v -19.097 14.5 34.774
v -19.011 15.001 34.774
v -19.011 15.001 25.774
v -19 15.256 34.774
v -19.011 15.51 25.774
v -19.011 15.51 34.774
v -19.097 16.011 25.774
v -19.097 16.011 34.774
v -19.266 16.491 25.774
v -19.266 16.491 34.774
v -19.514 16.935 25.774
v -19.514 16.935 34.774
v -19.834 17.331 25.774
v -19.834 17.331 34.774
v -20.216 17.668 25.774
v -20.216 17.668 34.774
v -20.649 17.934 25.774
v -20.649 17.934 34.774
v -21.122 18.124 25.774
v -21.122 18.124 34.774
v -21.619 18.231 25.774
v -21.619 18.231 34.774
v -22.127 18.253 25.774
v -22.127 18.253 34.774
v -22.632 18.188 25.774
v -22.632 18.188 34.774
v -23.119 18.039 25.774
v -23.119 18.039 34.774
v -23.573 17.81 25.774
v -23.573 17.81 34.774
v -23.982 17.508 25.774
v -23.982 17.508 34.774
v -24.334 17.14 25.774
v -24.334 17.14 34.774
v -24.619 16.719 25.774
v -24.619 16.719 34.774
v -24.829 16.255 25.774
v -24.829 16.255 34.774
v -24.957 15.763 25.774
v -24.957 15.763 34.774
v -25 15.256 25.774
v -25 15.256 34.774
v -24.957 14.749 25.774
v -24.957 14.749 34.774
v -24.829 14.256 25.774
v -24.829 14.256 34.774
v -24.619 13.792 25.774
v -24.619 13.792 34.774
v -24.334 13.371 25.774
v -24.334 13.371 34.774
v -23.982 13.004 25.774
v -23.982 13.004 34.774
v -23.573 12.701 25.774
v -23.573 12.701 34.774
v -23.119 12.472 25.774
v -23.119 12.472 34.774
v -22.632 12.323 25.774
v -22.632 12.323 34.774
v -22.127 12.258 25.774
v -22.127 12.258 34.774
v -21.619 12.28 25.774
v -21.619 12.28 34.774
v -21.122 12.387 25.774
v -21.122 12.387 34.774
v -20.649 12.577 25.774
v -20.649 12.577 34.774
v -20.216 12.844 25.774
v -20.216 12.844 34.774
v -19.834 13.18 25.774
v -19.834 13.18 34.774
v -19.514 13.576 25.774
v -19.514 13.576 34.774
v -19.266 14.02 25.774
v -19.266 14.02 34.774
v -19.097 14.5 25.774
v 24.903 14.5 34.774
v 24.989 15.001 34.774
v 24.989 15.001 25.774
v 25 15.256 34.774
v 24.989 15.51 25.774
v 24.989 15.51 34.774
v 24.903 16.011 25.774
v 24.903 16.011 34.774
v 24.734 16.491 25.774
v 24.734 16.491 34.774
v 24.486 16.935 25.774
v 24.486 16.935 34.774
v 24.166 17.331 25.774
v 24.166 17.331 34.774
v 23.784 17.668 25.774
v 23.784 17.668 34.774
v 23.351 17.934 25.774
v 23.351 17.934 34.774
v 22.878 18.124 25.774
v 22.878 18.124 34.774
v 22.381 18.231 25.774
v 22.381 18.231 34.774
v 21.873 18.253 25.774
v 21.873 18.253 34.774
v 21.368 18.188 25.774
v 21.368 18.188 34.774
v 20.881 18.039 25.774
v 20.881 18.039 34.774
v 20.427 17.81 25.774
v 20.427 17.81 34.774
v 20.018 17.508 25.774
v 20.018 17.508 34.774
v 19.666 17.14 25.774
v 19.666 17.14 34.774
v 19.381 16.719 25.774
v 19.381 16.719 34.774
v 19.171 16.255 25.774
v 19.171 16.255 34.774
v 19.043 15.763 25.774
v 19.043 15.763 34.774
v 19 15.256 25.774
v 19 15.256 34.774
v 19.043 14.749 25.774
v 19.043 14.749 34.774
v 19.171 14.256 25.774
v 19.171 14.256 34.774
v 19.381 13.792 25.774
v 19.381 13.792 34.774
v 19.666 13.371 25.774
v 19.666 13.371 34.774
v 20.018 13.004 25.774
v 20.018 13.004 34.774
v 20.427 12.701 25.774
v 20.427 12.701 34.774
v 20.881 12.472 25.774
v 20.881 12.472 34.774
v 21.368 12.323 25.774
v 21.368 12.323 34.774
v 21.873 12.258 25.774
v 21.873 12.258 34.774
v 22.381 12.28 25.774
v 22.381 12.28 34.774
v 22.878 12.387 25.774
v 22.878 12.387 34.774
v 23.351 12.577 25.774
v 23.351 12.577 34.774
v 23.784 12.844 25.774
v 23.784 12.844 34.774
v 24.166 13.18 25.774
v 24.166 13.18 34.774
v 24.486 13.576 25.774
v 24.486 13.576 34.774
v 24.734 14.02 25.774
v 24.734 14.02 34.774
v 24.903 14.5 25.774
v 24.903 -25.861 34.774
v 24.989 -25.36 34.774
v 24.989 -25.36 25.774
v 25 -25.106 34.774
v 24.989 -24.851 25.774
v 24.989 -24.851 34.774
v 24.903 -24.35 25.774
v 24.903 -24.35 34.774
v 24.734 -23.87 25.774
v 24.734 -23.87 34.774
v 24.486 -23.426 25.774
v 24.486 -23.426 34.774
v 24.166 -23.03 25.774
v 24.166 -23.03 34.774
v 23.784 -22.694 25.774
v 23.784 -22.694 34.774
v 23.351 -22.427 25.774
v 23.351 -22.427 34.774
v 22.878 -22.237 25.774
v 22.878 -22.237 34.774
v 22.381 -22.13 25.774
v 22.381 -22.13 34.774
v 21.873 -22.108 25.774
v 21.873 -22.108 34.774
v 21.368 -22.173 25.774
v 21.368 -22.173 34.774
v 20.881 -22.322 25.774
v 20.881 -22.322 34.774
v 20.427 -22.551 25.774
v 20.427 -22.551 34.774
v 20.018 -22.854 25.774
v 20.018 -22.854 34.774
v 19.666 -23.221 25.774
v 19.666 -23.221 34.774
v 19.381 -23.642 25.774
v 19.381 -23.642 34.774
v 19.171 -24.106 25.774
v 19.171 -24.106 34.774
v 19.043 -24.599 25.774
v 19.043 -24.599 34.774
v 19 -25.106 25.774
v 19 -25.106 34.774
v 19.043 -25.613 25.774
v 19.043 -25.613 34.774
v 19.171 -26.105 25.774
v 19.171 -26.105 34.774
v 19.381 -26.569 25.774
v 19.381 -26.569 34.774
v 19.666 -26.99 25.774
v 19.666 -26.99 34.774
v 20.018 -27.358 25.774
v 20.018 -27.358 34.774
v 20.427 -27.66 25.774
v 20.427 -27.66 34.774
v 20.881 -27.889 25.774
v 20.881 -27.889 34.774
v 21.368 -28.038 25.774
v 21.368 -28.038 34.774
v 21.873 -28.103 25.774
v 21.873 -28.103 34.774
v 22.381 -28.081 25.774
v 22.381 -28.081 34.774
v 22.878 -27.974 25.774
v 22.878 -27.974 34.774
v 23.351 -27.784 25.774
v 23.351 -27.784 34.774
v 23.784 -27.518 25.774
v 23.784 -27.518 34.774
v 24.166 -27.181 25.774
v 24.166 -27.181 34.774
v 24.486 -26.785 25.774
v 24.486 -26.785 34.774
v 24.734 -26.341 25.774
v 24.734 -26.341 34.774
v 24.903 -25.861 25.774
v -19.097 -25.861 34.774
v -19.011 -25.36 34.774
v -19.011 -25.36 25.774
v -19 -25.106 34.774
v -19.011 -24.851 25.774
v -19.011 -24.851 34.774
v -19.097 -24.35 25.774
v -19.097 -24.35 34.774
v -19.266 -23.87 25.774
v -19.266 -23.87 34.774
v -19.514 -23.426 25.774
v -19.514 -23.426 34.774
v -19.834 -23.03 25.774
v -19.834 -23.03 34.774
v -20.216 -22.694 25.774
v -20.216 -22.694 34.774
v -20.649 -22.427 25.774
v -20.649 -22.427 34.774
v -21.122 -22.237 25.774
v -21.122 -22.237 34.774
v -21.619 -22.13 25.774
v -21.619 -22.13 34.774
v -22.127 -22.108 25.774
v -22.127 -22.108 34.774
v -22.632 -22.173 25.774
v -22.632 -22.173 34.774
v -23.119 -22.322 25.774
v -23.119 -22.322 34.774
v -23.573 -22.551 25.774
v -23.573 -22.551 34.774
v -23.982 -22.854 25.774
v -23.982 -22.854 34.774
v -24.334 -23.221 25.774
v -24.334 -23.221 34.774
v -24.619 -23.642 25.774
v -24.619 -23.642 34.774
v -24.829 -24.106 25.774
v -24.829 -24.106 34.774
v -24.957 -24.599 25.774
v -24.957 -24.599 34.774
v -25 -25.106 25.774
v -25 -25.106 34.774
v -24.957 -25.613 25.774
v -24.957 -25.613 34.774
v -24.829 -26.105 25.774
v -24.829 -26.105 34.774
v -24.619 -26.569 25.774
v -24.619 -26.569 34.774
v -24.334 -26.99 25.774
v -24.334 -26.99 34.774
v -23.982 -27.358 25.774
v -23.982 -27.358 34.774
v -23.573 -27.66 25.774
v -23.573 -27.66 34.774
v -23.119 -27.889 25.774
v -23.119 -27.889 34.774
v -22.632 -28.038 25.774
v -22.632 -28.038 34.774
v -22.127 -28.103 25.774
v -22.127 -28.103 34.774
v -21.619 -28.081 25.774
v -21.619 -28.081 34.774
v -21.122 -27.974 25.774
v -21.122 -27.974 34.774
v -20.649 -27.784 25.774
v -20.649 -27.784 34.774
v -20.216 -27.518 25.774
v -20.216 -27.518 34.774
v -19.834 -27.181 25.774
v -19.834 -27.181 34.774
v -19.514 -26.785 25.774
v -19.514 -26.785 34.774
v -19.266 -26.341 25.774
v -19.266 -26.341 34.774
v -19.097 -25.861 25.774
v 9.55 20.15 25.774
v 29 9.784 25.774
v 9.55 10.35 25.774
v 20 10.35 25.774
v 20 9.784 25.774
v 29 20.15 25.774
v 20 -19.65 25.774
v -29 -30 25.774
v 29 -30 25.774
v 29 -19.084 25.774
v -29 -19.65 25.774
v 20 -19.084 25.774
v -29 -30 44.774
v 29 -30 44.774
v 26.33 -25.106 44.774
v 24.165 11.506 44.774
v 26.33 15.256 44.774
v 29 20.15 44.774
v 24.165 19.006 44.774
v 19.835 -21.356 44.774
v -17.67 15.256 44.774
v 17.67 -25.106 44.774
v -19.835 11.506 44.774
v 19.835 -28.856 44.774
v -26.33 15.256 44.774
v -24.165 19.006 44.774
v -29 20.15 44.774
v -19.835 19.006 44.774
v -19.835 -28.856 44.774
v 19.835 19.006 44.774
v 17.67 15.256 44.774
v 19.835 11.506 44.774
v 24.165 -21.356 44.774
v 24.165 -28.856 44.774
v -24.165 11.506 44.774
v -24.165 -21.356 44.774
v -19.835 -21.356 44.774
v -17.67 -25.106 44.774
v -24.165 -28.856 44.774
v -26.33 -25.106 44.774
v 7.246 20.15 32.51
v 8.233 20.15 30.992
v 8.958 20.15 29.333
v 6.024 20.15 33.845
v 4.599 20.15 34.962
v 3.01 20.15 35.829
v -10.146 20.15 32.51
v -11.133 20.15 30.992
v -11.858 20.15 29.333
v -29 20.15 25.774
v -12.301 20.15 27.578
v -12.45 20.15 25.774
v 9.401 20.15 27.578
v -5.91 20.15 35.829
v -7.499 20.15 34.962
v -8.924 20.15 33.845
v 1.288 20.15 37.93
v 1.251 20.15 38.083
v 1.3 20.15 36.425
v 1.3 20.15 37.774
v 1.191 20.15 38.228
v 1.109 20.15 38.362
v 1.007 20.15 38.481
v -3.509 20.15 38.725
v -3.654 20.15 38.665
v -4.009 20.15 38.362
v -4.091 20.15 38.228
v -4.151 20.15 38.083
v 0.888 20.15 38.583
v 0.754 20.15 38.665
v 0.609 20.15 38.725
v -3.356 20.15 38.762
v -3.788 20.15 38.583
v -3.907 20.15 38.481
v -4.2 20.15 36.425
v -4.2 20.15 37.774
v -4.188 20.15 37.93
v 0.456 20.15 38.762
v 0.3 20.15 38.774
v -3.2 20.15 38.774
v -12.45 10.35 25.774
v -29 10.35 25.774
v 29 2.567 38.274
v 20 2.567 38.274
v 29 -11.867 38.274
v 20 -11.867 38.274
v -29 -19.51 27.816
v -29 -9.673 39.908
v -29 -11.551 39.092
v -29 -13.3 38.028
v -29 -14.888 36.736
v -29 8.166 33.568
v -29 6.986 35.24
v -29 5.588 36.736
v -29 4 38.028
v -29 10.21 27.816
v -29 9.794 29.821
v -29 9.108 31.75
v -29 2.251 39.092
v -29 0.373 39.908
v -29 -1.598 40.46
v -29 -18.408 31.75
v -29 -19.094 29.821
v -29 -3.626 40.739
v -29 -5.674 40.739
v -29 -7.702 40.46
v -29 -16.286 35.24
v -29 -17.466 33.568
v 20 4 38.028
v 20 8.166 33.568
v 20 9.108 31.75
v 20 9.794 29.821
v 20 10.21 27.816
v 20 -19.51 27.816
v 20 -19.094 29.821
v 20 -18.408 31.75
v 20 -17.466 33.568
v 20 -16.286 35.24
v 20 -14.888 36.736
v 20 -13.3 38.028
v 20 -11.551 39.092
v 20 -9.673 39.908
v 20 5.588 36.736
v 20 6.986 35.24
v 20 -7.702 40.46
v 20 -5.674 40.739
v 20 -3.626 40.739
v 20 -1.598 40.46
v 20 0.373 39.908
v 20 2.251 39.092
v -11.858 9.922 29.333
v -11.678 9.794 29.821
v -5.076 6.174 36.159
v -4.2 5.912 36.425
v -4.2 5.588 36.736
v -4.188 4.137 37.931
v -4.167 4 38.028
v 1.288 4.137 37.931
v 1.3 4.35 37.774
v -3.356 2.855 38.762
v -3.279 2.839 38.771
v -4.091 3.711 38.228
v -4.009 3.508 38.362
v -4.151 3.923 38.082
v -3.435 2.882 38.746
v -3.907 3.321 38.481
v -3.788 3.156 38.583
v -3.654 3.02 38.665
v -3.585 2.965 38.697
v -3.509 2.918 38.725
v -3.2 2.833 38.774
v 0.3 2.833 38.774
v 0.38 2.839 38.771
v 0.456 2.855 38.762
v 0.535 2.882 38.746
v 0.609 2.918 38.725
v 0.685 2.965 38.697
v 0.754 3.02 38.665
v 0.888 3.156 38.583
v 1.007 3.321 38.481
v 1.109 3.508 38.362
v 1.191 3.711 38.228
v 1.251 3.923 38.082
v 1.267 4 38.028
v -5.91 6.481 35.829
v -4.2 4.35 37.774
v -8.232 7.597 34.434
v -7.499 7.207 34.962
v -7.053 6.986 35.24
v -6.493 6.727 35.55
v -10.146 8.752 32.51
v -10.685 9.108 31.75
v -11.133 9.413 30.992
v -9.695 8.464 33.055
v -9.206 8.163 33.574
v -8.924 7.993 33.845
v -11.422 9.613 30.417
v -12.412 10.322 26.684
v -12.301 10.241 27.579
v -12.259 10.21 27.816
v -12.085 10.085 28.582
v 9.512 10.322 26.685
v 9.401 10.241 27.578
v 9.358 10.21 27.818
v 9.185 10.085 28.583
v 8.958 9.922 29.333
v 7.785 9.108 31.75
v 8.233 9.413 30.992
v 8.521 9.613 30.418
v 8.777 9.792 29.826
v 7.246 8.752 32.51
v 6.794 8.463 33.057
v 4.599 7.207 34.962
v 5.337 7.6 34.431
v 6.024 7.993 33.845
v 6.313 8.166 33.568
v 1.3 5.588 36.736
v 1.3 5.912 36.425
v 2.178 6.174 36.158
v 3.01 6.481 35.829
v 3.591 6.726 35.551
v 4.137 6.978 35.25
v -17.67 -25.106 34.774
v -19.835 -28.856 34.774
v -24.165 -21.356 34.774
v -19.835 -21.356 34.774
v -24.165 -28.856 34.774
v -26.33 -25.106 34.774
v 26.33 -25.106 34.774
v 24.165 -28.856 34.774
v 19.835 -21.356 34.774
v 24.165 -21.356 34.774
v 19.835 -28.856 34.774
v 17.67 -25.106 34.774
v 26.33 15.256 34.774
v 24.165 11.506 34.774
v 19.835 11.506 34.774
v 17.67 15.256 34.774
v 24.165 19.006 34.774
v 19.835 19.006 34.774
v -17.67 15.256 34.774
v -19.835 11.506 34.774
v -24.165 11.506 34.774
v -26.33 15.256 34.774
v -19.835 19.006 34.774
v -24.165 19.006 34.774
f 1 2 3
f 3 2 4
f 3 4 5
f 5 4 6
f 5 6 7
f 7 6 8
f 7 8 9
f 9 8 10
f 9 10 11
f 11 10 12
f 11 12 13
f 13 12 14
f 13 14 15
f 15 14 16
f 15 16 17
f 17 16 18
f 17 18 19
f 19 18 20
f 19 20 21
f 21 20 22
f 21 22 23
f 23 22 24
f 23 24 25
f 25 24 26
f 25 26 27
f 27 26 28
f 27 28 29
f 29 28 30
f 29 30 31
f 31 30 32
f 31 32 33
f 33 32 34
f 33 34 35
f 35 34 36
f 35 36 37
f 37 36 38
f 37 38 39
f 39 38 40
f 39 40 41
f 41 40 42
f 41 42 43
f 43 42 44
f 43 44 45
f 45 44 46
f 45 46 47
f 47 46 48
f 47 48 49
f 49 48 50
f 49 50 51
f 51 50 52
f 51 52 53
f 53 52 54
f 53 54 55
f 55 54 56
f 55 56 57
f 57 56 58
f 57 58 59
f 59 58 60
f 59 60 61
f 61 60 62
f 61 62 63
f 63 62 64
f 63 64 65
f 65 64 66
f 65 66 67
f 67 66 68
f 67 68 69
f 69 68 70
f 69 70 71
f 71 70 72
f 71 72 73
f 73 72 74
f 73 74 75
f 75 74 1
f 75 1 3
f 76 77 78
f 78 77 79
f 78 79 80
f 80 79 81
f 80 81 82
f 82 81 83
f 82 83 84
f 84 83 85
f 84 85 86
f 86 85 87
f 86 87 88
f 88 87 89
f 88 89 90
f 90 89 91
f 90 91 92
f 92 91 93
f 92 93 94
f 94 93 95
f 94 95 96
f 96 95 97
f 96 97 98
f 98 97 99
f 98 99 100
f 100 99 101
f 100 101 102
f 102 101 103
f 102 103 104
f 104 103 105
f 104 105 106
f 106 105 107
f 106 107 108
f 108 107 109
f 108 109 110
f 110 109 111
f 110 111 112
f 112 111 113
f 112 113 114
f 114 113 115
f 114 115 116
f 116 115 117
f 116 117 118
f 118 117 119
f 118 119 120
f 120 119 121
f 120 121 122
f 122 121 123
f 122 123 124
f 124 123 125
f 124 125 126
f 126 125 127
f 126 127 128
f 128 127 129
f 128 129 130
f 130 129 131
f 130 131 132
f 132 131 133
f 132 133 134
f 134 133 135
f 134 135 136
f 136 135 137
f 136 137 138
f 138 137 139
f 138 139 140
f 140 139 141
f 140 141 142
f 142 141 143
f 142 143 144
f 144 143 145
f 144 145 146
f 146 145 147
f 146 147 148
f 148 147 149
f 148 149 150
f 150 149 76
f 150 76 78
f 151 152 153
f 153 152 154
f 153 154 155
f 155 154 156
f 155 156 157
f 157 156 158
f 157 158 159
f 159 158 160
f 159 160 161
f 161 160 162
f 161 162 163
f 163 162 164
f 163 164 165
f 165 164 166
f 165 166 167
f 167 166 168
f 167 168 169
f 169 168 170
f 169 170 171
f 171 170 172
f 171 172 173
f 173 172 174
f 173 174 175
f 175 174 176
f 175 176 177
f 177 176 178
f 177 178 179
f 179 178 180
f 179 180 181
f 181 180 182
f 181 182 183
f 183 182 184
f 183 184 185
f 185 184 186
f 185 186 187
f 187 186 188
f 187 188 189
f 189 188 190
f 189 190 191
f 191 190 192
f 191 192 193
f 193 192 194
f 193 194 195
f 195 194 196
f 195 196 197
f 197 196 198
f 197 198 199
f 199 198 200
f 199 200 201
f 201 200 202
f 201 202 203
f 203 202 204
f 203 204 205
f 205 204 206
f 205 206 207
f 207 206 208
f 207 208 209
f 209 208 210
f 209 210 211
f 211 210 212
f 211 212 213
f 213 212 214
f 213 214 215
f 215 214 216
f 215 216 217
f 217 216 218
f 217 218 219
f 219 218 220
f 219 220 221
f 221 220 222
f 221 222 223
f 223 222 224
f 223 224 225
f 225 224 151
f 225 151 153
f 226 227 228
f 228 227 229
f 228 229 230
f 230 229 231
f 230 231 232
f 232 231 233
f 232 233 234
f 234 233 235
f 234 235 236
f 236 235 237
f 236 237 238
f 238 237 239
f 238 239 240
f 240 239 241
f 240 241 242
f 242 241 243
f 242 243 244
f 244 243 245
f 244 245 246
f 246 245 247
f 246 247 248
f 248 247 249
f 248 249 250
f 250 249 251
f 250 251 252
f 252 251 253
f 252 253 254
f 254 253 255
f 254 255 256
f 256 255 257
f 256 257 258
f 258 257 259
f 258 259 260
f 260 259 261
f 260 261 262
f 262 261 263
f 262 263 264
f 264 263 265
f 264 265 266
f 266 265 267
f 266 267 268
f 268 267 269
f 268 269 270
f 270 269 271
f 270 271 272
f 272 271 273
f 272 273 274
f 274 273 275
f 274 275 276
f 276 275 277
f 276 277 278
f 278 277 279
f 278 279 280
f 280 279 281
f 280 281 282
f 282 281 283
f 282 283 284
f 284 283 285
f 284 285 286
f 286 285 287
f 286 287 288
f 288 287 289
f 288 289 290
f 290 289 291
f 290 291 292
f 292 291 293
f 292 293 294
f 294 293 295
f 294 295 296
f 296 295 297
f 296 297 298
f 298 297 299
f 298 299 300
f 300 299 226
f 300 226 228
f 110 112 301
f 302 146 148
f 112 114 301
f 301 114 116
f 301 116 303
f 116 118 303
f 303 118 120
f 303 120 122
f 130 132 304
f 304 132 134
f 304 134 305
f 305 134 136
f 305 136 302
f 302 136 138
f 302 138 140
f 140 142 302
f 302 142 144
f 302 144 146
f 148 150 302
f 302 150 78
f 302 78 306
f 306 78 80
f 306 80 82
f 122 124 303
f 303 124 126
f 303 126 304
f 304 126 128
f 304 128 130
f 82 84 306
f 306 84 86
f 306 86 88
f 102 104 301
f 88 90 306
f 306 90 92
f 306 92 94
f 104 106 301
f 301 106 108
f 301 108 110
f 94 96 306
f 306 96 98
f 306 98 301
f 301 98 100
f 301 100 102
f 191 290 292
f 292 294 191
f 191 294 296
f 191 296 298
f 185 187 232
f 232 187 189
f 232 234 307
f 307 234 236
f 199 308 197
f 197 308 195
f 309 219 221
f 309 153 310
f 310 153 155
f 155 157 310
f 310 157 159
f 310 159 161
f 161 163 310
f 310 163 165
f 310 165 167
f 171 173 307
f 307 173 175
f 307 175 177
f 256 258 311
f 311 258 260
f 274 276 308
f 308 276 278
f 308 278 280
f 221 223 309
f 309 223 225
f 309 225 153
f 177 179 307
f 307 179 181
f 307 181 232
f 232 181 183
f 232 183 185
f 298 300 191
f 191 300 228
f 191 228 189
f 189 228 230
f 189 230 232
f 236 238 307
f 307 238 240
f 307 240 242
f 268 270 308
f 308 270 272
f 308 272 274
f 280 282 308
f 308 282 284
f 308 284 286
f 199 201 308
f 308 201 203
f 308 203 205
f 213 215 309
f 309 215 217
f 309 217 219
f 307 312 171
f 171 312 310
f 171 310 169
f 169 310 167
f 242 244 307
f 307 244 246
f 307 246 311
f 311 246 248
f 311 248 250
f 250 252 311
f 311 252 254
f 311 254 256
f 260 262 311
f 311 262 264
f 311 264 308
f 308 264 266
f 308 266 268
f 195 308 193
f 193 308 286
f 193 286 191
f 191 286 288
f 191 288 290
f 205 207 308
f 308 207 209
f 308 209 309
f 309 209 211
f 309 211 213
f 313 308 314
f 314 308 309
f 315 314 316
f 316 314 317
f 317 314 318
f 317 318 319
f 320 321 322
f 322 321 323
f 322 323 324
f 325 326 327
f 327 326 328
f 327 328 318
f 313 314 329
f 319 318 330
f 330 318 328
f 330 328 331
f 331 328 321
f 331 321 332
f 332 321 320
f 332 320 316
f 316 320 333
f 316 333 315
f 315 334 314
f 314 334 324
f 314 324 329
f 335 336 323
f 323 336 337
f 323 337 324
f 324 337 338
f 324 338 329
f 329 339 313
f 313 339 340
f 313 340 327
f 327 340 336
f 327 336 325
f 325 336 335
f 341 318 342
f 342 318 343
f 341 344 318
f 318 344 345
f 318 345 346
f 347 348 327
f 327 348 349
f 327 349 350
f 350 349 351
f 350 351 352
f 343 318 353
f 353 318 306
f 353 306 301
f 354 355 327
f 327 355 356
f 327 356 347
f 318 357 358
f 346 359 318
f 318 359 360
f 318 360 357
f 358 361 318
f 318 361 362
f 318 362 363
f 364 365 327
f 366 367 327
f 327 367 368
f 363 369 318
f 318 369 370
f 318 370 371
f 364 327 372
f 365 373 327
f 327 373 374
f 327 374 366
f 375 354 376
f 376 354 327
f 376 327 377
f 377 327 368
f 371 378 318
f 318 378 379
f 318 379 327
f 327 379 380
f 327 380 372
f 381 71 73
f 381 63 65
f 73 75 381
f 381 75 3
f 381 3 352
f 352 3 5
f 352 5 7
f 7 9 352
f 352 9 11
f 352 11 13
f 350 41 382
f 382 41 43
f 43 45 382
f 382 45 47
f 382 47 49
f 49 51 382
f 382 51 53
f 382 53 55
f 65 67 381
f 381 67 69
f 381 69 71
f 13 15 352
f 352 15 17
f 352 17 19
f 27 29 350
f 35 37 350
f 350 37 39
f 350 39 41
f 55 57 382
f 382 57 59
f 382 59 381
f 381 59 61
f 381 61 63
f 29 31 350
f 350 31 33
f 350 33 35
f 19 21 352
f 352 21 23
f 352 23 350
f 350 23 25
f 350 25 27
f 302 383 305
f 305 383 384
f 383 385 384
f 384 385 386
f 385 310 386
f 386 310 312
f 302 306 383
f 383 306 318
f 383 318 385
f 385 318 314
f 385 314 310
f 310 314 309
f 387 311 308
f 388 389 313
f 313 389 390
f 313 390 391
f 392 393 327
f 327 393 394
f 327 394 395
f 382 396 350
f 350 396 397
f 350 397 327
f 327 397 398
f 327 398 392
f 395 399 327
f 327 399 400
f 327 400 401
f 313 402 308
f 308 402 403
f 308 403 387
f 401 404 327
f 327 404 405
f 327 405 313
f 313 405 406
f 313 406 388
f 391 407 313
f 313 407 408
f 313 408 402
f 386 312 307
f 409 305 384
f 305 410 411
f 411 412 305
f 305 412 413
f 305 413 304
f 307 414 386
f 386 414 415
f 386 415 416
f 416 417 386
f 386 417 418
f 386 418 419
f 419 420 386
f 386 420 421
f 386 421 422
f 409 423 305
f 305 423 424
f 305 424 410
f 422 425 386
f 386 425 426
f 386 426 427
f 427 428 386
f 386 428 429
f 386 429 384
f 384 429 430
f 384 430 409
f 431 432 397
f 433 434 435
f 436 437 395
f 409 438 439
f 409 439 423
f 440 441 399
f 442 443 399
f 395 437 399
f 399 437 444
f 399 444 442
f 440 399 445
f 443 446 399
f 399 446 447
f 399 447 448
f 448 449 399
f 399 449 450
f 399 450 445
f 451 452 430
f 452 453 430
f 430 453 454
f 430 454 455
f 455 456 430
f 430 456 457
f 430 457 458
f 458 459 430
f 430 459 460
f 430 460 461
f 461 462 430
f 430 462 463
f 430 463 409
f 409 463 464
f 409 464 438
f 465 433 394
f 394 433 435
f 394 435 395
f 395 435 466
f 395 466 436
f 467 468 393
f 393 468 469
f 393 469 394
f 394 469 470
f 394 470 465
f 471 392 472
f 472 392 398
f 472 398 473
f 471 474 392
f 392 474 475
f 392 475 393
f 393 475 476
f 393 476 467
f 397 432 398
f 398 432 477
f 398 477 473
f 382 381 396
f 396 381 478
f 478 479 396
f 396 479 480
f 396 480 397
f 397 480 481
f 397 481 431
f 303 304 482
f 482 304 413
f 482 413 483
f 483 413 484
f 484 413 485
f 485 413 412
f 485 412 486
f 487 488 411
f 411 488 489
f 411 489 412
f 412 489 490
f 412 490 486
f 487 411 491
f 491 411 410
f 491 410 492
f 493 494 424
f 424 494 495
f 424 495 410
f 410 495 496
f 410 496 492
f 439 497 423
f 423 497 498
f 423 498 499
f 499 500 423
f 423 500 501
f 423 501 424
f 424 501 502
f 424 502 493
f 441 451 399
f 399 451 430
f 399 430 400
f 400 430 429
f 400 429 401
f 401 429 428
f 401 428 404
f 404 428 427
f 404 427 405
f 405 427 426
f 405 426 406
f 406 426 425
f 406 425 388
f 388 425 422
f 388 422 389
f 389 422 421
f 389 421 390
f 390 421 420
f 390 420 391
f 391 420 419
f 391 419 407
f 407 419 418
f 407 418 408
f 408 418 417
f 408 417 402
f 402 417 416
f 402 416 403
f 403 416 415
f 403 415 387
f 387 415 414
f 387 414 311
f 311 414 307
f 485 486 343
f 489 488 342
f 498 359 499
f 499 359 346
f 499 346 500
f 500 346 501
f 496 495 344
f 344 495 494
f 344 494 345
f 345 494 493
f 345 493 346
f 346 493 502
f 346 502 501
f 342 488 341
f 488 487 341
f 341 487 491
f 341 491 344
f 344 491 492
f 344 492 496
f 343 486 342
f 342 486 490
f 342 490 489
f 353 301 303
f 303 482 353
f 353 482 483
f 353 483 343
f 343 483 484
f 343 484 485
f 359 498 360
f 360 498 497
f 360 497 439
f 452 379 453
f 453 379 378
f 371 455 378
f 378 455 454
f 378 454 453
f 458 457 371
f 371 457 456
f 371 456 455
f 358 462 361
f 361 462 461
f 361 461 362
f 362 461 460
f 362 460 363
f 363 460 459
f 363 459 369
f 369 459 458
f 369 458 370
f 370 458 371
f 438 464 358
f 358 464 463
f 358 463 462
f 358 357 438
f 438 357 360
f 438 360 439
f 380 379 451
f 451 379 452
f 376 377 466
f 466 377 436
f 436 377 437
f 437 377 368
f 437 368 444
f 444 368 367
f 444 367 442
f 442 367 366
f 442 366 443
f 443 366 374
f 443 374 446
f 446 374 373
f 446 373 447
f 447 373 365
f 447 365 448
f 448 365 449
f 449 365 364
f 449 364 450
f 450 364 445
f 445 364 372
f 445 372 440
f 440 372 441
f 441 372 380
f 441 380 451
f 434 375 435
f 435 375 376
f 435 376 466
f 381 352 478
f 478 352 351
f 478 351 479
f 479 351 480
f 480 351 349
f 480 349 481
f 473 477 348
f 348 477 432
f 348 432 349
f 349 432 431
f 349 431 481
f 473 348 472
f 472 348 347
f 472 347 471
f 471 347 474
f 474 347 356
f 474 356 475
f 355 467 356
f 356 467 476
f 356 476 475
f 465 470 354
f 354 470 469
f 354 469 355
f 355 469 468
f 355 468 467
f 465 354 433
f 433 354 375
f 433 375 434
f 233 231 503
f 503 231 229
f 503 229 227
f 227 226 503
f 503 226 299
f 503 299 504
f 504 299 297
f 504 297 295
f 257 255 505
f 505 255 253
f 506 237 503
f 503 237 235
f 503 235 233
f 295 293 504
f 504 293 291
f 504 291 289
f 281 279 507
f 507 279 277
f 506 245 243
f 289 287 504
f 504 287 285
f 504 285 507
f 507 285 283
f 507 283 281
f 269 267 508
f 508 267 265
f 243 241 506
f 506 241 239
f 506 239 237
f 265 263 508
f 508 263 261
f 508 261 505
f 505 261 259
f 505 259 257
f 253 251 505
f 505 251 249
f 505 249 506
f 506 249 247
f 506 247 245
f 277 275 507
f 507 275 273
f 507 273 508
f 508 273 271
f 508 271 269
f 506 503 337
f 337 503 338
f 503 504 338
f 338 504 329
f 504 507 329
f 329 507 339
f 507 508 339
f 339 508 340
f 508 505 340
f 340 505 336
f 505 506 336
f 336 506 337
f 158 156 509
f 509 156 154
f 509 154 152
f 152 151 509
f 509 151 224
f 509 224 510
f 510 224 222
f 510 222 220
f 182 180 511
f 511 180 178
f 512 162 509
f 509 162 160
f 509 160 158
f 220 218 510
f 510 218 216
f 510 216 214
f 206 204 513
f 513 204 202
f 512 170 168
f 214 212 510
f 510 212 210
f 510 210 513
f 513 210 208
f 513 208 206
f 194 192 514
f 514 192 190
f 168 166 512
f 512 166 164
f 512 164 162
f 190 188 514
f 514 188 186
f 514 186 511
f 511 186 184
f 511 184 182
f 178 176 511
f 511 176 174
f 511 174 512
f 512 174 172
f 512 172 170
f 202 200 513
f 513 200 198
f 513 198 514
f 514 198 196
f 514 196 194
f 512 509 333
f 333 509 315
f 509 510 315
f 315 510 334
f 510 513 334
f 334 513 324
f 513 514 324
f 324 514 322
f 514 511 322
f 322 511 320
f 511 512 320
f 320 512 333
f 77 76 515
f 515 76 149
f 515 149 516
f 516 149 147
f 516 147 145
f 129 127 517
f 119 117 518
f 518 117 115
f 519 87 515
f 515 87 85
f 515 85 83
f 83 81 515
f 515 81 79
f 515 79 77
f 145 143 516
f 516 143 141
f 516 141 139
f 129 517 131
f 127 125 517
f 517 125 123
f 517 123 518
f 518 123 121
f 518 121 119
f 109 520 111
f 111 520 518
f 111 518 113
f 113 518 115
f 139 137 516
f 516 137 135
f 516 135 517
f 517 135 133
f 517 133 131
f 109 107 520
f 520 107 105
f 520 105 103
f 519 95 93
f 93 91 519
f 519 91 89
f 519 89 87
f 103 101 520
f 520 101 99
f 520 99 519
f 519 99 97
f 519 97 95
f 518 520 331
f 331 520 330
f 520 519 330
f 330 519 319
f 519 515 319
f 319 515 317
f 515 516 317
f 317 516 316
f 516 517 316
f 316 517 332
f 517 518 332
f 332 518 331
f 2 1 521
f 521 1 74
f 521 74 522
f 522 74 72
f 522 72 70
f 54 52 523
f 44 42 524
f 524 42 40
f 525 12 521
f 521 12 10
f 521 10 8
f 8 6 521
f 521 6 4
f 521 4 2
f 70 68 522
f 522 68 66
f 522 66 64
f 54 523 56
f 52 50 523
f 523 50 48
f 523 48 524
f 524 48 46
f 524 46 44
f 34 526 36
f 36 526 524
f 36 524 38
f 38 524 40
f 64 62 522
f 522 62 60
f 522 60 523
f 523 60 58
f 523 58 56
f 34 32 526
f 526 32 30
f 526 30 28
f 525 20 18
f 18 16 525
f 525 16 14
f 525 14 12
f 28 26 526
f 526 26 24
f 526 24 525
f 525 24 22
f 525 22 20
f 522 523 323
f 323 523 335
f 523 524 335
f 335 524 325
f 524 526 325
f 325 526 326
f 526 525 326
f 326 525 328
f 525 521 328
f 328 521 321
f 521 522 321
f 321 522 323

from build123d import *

# Parameters (mm, degrees)
BOSS_EXTRUDE1_DEPTH      = 29
BOSS_EXTRUDE1_DEPTH_BACK = 29
CUT_EXTRUDE1_DEPTH       = 20
CUT_EXTRUDE1_DEPTH_BACK  = 62.202085825
SKETCH2_R                = 15
CUT_EXTRUDE2_DEPTH       = 18
SKETCH4_R                = 3
CUT_EXTRUDE3_DEPTH       = 46.847573609
CUT_EXTRUDE4_DEPTH       = 10


with BuildPart() as part:
    # Sketch1 → Boss-Extrude1 (new, two sides: drawn at the far end of the back side and taken through both)
    with BuildSketch(Plane(origin=(0, 0, 0), x_dir=(0, 0, -1), z_dir=(1, 0, 0)).offset(-BOSS_EXTRUDE1_DEPTH_BACK)):
        Polygon((-44.77382393, -30), (-25.77382393, -30), (-25.77382393, -19.08375673), (-38.27382393, -11.866878365), (-38.27382393, 2.566878365), (-25.77382393, 9.78375673), (-25.77382393, 20.15), (-44.77382393, 20.15), align=None)
    extrude(amount=BOSS_EXTRUDE1_DEPTH + BOSS_EXTRUDE1_DEPTH_BACK)

    # Sketch2 → Cut-Extrude1 (cut, two sides: drawn at the far end of the back side and taken through both)
    with BuildSketch(Plane(origin=(0, 0, 0), x_dir=(0, 0, -1), z_dir=(1, 0, 0)).offset(-CUT_EXTRUDE1_DEPTH_BACK)):
        with Locations((-25.77382393, -4.65)):
            Circle(SKETCH2_R)
    extrude(amount=CUT_EXTRUDE1_DEPTH + CUT_EXTRUDE1_DEPTH_BACK, mode=Mode.SUBTRACT)

    # Sketch3 → Cut-Extrude2 (cut)
    with BuildSketch(Plane(origin=(0, 20.15, 0), x_dir=(1, 0, 0), z_dir=(0, 1, 0))):
        with BuildLine():
            Line((9.55, -25.77382393), (1.3, -25.77382393))
            Line((1.3, -25.77382393), (1.3, -36.424528133))
            ThreePointArc((1.3, -36.424528133), (7.246263565, -32.509920723), (9.55, -25.77382393))
        make_face()
        with BuildLine():
            Line((1.3, -36.424528133), (1.3, -25.77382393))
            Line((1.3, -25.77382393), (-4.2, -25.77382393))
            Line((-4.2, -25.77382393), (-4.2, -36.424528133))
            ThreePointArc((-4.2, -36.424528133), (-1.45, -36.77382393), (1.3, -36.424528133))
        make_face()
        with BuildLine():
            Line((-4.2, -36.424528133), (-4.2, -25.77382393))
            Line((-4.2, -25.77382393), (-12.45, -25.77382393))
            ThreePointArc((-12.45, -25.77382393), (-10.146263565, -32.509920723), (-4.2, -36.424528133))
        make_face()
        with BuildLine():
            Line((1.3, -37.77382393), (1.3, -36.424528133))
            ThreePointArc((1.3, -36.424528133), (-1.45, -36.77382393), (-4.2, -36.424528133))
            Line((-4.2, -36.424528133), (-4.2, -37.77382393))
            ThreePointArc((-4.2, -37.77382393), (-3.907106781, -38.480930712), (-3.2, -38.77382393))
            Line((-3.2, -38.77382393), (0.3, -38.77382393))
            ThreePointArc((0.3, -38.77382393), (1.007106781, -38.480930712), (1.3, -37.77382393))
        make_face()
    extrude(amount=-CUT_EXTRUDE2_DEPTH, mode=Mode.SUBTRACT)

    # Sketch4 → Cut-Extrude3 (cut, through all)
    with BuildSketch(Plane(origin=(0, 0, 25.77382393), x_dir=(-1, 0, 0), z_dir=(0, 0, -1))):
        with Locations((-22, 15.255553499)):
            Circle(SKETCH4_R)
        with Locations((-22, -25.105553499)):
            Circle(SKETCH4_R)
        with Locations((22, -25.105553499)):
            Circle(SKETCH4_R)
        with Locations((22, 15.255553499)):
            Circle(SKETCH4_R)
    extrude(amount=-CUT_EXTRUDE3_DEPTH, mode=Mode.SUBTRACT)

    # Sketch5 → Cut-Extrude4 (cut)
    with BuildSketch(Plane.XY.offset(44.77382393)):
        Polygon((-19.834936491, -21.355553499), (-24.165063509, -21.355553499), (-26.330127019, -25.105553499), (-24.165063509, -28.855553499), (-19.834936491, -28.855553499), (-17.669872981, -25.105553499), align=None)
        Polygon((-19.834936491, 11.505553499), (-17.669872981, 15.255553499), (-19.834936491, 19.005553499), (-24.165063509, 19.005553499), (-26.330127019, 15.255553499), (-24.165063509, 11.505553499), align=None)
        Polygon((17.669872981, 15.255553499), (19.834936491, 11.505553499), (24.165063509, 11.505553499), (26.330127019, 15.255553499), (24.165063509, 19.005553499), (19.834936491, 19.005553499), align=None)
        Polygon((24.165063509, -21.355553499), (19.834936491, -21.355553499), (17.669872981, -25.105553499), (19.834936491, -28.855553499), (24.165063509, -28.855553499), (26.330127019, -25.105553499), align=None)
    extrude(amount=-CUT_EXTRUDE4_DEPTH, mode=Mode.SUBTRACT)


solid = part.part
